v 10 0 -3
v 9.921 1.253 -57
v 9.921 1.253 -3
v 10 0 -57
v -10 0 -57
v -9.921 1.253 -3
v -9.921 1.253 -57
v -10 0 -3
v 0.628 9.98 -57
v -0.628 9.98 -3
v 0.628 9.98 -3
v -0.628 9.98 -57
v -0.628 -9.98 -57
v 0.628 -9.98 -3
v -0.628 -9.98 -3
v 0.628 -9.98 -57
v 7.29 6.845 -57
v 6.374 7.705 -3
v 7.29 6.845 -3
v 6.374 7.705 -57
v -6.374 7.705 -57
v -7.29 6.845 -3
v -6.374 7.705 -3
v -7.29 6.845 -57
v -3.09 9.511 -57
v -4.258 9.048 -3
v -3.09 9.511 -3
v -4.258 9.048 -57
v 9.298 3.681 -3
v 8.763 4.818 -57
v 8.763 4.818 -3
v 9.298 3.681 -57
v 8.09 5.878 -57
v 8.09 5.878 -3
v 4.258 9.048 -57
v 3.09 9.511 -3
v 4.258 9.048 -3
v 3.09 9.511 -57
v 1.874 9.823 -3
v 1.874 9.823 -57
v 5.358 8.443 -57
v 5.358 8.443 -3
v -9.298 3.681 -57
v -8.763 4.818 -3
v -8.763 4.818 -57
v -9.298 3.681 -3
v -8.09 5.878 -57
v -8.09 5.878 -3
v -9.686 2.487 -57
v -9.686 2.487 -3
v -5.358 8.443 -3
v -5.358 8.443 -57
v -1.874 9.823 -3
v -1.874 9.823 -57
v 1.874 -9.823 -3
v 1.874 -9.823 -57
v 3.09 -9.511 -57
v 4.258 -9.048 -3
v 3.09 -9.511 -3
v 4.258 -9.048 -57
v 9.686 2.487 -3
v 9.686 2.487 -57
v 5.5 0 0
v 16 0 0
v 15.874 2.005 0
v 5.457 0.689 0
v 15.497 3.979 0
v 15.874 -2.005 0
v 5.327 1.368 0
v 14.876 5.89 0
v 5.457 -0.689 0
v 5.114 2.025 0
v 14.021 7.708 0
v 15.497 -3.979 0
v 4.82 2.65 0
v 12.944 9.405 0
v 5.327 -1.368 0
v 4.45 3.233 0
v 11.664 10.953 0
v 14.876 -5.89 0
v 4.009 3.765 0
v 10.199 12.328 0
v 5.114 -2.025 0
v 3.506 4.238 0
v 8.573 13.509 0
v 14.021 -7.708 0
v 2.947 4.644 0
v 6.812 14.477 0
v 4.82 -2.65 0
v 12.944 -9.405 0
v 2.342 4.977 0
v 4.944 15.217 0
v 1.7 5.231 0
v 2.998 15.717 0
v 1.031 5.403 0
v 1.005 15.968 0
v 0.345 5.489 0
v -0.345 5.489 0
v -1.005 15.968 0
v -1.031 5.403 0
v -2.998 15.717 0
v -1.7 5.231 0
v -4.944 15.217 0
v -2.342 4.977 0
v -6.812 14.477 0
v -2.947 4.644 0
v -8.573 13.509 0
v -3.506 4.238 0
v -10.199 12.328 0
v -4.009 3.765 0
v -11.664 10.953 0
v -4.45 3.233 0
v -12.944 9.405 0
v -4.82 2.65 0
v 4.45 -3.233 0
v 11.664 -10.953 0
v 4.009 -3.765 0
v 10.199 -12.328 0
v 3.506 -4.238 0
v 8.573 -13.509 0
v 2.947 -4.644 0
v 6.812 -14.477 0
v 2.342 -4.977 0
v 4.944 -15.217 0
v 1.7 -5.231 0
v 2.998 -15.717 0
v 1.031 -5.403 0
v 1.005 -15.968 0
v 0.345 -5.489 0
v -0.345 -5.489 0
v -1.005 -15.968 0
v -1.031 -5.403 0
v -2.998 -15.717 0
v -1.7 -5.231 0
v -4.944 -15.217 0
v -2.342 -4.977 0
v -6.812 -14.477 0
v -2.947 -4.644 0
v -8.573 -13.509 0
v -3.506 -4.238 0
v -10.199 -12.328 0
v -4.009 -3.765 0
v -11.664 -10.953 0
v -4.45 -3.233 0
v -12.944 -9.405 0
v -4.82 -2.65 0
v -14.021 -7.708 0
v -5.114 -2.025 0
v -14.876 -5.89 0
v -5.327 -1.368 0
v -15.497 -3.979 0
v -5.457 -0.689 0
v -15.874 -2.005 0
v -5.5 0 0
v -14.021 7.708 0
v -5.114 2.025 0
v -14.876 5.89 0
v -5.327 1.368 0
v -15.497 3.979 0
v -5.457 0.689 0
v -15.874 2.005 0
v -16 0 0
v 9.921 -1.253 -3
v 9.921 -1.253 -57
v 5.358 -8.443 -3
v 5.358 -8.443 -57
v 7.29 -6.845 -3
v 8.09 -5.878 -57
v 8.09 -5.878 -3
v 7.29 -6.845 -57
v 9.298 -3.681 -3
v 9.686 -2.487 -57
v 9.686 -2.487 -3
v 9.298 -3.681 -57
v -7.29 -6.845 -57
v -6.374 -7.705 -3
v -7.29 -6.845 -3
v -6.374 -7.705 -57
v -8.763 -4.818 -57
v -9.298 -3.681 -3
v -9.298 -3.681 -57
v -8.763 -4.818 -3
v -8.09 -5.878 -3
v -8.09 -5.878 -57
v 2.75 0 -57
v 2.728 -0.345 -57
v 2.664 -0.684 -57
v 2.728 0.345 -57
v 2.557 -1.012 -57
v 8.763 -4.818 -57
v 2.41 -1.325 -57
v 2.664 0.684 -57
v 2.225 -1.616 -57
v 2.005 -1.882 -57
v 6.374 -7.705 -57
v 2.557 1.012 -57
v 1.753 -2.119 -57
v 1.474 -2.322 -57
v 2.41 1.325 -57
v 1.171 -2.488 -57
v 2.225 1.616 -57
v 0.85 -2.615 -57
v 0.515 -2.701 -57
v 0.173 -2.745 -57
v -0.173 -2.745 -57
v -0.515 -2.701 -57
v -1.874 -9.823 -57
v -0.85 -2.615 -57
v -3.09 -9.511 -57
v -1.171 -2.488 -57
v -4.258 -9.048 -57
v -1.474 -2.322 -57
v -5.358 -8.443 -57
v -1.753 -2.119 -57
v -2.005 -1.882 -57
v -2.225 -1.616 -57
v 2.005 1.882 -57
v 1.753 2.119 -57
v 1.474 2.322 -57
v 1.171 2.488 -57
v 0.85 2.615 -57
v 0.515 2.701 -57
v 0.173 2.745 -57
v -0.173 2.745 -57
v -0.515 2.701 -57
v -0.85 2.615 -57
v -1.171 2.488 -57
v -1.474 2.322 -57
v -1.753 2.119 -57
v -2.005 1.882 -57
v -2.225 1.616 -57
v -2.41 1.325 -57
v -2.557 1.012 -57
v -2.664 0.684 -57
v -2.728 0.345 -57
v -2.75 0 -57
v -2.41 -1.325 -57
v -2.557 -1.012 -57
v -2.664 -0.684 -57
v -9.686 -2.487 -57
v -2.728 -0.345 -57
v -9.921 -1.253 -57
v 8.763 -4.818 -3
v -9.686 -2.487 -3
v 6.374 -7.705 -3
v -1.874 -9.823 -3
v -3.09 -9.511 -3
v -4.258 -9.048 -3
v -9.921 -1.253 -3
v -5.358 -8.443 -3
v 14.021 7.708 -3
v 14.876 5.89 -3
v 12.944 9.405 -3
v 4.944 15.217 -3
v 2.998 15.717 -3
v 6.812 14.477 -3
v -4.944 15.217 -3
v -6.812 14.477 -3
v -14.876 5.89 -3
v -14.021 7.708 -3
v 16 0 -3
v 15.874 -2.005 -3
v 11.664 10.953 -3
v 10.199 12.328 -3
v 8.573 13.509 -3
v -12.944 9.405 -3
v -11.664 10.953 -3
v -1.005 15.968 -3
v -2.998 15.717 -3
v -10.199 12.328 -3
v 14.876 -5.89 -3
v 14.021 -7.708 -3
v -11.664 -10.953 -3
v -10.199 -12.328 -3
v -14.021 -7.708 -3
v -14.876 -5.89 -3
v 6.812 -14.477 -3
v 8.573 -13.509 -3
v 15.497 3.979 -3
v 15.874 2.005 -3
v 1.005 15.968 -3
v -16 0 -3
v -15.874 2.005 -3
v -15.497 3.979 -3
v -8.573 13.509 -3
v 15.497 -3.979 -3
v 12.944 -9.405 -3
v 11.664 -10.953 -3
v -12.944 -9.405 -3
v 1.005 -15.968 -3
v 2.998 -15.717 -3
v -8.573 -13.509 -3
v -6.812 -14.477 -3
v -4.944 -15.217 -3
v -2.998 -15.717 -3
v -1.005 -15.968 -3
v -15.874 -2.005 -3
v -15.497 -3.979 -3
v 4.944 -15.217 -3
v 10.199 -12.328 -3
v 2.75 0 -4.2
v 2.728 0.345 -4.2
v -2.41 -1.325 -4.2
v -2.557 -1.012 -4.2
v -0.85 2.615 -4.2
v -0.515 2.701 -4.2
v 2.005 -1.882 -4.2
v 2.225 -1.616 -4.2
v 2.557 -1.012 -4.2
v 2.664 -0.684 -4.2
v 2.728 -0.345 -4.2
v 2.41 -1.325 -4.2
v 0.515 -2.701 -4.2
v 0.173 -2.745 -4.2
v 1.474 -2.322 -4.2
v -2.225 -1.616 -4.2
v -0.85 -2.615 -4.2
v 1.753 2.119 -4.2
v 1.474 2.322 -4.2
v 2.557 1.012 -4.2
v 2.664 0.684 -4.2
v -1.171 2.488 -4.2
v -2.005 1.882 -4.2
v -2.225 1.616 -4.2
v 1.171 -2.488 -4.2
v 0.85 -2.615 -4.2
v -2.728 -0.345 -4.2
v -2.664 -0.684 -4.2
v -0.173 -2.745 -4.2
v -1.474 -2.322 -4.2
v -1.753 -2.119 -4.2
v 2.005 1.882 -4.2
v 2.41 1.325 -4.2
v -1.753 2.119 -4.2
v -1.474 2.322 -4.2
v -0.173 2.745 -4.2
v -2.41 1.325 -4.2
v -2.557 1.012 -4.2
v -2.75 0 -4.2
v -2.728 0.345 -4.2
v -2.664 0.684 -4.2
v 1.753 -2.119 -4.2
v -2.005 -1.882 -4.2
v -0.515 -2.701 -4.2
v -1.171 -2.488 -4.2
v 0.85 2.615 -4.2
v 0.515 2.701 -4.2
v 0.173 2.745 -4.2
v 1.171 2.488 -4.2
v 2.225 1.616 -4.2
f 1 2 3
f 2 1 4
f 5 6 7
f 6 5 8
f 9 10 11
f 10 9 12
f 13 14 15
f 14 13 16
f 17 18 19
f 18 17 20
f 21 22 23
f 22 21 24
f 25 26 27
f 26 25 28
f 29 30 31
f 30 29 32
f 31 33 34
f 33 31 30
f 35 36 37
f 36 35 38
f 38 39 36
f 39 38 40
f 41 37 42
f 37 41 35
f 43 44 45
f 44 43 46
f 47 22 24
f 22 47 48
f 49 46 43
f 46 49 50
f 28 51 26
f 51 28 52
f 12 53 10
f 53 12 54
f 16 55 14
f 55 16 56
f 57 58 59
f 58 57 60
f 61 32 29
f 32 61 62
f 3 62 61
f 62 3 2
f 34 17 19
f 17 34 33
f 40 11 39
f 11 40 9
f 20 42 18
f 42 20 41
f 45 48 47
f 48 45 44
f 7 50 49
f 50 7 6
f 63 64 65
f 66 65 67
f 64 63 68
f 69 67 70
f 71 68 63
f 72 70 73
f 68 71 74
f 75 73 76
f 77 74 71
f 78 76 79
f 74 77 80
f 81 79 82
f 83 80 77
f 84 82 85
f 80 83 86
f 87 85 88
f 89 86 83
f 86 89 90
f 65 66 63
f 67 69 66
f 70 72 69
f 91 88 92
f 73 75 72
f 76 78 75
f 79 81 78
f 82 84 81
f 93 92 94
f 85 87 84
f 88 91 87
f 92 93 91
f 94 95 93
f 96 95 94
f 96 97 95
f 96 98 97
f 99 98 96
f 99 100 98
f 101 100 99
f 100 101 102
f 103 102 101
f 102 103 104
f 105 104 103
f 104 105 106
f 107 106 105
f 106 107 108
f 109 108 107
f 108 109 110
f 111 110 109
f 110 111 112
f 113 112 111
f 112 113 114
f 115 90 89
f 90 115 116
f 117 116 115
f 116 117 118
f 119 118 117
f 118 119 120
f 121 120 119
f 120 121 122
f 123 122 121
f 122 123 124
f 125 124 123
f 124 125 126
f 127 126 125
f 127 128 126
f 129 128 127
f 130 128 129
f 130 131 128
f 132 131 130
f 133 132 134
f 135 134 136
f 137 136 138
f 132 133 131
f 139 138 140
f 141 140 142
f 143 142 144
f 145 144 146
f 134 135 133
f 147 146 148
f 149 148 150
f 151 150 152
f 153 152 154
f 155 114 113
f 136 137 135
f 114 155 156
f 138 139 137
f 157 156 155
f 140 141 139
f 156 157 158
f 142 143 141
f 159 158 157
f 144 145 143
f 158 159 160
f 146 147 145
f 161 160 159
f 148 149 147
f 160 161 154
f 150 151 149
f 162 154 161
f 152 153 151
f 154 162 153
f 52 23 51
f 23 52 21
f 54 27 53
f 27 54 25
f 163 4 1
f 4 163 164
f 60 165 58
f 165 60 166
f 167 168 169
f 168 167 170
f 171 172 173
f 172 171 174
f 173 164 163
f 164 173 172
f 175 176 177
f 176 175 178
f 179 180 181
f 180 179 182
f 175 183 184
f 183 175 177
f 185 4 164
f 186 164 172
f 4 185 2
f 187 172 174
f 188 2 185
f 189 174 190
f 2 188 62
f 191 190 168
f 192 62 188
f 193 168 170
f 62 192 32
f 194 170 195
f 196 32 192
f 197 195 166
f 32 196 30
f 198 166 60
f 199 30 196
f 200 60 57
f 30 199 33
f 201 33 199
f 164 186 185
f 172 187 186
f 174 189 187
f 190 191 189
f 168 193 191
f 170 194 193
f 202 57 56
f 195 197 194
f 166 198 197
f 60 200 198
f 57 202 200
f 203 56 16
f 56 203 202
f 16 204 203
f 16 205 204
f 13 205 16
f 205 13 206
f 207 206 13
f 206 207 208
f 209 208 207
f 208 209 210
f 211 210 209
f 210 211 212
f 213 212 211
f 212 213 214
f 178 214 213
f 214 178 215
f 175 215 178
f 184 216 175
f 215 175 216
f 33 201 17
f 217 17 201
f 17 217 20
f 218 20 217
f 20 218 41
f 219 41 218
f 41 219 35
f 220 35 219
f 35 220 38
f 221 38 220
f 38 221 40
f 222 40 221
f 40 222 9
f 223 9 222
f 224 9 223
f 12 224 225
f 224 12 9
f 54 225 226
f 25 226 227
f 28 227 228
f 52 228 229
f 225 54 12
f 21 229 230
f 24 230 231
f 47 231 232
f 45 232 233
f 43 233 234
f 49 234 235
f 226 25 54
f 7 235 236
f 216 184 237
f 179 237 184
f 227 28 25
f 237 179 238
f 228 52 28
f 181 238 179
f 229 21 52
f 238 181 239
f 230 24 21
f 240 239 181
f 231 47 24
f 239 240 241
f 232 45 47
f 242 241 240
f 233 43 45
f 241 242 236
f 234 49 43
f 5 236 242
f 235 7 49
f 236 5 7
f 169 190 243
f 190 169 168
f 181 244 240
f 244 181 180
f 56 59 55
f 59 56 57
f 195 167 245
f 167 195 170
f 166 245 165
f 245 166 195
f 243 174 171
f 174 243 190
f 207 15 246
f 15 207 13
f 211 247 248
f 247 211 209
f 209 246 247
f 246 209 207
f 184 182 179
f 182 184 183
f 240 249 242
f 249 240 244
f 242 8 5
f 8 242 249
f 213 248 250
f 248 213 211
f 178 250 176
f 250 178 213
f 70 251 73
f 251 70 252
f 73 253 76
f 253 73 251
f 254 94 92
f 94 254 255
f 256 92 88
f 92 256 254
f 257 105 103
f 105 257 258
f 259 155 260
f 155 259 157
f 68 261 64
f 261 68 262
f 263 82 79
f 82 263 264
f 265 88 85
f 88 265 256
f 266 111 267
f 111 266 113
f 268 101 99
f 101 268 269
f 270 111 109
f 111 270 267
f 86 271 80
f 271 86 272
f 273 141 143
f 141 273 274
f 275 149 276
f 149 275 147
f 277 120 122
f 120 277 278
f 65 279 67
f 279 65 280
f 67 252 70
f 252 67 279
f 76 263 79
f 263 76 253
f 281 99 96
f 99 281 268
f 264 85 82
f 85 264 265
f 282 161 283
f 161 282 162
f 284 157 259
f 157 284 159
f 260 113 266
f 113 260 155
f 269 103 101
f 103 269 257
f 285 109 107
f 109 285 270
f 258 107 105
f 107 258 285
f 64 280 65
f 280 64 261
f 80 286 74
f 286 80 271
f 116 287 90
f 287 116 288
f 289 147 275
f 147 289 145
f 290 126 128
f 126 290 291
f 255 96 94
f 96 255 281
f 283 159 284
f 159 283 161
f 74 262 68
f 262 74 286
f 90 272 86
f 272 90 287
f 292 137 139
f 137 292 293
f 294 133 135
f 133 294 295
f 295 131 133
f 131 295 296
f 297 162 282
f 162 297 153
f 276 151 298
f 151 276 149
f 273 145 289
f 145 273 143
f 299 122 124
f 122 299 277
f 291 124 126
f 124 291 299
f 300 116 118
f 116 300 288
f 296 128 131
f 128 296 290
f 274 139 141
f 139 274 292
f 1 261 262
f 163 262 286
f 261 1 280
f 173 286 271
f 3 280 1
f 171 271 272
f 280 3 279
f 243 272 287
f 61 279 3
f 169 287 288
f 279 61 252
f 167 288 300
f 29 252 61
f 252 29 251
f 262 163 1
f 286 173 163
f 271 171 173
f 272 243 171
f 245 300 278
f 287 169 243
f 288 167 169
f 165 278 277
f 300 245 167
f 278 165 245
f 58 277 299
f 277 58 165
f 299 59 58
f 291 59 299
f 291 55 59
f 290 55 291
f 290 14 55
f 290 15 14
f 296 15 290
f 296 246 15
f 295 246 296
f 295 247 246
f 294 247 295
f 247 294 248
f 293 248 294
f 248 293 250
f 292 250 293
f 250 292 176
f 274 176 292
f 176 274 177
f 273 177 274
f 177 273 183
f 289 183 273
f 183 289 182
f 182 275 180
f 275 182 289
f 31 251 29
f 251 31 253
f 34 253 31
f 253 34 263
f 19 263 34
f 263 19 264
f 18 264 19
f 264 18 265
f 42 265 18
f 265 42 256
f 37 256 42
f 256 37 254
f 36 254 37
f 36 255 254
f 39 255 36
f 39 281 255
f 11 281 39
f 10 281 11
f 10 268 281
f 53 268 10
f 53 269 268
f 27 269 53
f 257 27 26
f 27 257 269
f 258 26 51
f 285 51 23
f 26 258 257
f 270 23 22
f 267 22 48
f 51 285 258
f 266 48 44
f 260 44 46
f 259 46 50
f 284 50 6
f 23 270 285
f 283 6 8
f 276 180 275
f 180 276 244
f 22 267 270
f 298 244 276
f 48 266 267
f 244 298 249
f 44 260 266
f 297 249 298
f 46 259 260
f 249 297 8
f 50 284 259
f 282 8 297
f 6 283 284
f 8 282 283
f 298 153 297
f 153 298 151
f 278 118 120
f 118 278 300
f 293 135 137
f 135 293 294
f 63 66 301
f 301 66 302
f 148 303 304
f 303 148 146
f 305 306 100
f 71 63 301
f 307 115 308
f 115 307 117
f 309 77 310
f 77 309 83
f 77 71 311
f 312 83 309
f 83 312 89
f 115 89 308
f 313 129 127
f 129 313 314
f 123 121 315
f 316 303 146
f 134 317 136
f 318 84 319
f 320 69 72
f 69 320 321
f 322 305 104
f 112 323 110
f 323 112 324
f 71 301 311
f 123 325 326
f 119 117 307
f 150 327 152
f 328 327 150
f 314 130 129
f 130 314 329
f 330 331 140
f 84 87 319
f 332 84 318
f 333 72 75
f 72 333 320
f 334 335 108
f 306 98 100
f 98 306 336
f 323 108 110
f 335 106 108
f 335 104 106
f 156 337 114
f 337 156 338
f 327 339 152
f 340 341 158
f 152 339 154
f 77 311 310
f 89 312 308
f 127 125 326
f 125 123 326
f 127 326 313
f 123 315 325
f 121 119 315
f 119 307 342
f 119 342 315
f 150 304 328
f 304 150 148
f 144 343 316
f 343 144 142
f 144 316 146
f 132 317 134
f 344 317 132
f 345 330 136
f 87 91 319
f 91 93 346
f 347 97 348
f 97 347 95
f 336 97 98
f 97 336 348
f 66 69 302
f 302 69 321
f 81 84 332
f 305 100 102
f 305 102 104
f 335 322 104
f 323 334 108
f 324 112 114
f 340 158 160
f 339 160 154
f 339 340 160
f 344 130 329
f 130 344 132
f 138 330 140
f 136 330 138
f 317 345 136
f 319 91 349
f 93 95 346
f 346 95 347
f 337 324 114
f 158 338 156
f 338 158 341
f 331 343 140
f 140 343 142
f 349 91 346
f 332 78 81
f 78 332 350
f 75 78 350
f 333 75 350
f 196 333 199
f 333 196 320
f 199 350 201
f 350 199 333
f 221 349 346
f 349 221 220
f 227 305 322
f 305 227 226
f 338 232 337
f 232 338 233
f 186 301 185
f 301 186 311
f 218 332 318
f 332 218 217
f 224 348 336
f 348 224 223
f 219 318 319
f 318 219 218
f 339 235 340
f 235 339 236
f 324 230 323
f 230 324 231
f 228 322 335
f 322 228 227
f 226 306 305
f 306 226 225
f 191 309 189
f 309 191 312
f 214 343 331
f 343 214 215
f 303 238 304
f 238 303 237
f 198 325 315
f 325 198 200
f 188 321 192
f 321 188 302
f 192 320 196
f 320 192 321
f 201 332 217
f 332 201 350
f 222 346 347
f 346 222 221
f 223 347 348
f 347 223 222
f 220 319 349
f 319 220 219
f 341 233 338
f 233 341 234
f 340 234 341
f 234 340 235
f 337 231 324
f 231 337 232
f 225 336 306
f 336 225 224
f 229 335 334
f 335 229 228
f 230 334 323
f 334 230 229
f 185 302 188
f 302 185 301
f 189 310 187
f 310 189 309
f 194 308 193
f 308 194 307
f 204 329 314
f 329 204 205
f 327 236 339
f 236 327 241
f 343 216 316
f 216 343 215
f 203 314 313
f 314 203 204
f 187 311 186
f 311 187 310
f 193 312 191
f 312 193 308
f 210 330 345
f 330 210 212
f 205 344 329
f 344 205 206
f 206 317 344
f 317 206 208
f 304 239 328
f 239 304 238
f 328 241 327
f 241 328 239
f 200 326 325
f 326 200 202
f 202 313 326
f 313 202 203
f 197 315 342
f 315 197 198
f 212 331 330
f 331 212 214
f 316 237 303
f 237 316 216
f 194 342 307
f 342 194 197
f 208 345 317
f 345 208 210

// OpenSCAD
$fn = 50;


difference() {
	union() {
		translate(v = [0, 0, -57.0000000000]) {
			cylinder(h = 57, r = 10.0000000000);
		}
		translate(v = [0, 0, -3.0000000000]) {
			cylinder(h = 3, r = 16.0000000000);
		}
	}
	union() {
		translate(v = [0, 0, 0]) {
			rotate(a = [0, 0, 0]) {
				difference() {
					union() {
						#translate(v = [0, 0, -57.0000000000]) {
							cylinder(h = 57, r = 2.2500000000);
						}
						#translate(v = [0, 0, -4.2000000000]) {
							cylinder(h = 4.2000000000, r = 10.0000000000, r1 = 2.7500000000, r2 = 5.5000000000);
						}
						#translate(v = [0, 0, -57.0000000000]) {
							cylinder(h = 57, r = 2.7500000000);
						}
						#translate(v = [0, 0, -57.0000000000]) {
							cylinder(h = 57, r = 2.2500000000);
						}
					}
					union();
				}
			}
		}
	}
}
